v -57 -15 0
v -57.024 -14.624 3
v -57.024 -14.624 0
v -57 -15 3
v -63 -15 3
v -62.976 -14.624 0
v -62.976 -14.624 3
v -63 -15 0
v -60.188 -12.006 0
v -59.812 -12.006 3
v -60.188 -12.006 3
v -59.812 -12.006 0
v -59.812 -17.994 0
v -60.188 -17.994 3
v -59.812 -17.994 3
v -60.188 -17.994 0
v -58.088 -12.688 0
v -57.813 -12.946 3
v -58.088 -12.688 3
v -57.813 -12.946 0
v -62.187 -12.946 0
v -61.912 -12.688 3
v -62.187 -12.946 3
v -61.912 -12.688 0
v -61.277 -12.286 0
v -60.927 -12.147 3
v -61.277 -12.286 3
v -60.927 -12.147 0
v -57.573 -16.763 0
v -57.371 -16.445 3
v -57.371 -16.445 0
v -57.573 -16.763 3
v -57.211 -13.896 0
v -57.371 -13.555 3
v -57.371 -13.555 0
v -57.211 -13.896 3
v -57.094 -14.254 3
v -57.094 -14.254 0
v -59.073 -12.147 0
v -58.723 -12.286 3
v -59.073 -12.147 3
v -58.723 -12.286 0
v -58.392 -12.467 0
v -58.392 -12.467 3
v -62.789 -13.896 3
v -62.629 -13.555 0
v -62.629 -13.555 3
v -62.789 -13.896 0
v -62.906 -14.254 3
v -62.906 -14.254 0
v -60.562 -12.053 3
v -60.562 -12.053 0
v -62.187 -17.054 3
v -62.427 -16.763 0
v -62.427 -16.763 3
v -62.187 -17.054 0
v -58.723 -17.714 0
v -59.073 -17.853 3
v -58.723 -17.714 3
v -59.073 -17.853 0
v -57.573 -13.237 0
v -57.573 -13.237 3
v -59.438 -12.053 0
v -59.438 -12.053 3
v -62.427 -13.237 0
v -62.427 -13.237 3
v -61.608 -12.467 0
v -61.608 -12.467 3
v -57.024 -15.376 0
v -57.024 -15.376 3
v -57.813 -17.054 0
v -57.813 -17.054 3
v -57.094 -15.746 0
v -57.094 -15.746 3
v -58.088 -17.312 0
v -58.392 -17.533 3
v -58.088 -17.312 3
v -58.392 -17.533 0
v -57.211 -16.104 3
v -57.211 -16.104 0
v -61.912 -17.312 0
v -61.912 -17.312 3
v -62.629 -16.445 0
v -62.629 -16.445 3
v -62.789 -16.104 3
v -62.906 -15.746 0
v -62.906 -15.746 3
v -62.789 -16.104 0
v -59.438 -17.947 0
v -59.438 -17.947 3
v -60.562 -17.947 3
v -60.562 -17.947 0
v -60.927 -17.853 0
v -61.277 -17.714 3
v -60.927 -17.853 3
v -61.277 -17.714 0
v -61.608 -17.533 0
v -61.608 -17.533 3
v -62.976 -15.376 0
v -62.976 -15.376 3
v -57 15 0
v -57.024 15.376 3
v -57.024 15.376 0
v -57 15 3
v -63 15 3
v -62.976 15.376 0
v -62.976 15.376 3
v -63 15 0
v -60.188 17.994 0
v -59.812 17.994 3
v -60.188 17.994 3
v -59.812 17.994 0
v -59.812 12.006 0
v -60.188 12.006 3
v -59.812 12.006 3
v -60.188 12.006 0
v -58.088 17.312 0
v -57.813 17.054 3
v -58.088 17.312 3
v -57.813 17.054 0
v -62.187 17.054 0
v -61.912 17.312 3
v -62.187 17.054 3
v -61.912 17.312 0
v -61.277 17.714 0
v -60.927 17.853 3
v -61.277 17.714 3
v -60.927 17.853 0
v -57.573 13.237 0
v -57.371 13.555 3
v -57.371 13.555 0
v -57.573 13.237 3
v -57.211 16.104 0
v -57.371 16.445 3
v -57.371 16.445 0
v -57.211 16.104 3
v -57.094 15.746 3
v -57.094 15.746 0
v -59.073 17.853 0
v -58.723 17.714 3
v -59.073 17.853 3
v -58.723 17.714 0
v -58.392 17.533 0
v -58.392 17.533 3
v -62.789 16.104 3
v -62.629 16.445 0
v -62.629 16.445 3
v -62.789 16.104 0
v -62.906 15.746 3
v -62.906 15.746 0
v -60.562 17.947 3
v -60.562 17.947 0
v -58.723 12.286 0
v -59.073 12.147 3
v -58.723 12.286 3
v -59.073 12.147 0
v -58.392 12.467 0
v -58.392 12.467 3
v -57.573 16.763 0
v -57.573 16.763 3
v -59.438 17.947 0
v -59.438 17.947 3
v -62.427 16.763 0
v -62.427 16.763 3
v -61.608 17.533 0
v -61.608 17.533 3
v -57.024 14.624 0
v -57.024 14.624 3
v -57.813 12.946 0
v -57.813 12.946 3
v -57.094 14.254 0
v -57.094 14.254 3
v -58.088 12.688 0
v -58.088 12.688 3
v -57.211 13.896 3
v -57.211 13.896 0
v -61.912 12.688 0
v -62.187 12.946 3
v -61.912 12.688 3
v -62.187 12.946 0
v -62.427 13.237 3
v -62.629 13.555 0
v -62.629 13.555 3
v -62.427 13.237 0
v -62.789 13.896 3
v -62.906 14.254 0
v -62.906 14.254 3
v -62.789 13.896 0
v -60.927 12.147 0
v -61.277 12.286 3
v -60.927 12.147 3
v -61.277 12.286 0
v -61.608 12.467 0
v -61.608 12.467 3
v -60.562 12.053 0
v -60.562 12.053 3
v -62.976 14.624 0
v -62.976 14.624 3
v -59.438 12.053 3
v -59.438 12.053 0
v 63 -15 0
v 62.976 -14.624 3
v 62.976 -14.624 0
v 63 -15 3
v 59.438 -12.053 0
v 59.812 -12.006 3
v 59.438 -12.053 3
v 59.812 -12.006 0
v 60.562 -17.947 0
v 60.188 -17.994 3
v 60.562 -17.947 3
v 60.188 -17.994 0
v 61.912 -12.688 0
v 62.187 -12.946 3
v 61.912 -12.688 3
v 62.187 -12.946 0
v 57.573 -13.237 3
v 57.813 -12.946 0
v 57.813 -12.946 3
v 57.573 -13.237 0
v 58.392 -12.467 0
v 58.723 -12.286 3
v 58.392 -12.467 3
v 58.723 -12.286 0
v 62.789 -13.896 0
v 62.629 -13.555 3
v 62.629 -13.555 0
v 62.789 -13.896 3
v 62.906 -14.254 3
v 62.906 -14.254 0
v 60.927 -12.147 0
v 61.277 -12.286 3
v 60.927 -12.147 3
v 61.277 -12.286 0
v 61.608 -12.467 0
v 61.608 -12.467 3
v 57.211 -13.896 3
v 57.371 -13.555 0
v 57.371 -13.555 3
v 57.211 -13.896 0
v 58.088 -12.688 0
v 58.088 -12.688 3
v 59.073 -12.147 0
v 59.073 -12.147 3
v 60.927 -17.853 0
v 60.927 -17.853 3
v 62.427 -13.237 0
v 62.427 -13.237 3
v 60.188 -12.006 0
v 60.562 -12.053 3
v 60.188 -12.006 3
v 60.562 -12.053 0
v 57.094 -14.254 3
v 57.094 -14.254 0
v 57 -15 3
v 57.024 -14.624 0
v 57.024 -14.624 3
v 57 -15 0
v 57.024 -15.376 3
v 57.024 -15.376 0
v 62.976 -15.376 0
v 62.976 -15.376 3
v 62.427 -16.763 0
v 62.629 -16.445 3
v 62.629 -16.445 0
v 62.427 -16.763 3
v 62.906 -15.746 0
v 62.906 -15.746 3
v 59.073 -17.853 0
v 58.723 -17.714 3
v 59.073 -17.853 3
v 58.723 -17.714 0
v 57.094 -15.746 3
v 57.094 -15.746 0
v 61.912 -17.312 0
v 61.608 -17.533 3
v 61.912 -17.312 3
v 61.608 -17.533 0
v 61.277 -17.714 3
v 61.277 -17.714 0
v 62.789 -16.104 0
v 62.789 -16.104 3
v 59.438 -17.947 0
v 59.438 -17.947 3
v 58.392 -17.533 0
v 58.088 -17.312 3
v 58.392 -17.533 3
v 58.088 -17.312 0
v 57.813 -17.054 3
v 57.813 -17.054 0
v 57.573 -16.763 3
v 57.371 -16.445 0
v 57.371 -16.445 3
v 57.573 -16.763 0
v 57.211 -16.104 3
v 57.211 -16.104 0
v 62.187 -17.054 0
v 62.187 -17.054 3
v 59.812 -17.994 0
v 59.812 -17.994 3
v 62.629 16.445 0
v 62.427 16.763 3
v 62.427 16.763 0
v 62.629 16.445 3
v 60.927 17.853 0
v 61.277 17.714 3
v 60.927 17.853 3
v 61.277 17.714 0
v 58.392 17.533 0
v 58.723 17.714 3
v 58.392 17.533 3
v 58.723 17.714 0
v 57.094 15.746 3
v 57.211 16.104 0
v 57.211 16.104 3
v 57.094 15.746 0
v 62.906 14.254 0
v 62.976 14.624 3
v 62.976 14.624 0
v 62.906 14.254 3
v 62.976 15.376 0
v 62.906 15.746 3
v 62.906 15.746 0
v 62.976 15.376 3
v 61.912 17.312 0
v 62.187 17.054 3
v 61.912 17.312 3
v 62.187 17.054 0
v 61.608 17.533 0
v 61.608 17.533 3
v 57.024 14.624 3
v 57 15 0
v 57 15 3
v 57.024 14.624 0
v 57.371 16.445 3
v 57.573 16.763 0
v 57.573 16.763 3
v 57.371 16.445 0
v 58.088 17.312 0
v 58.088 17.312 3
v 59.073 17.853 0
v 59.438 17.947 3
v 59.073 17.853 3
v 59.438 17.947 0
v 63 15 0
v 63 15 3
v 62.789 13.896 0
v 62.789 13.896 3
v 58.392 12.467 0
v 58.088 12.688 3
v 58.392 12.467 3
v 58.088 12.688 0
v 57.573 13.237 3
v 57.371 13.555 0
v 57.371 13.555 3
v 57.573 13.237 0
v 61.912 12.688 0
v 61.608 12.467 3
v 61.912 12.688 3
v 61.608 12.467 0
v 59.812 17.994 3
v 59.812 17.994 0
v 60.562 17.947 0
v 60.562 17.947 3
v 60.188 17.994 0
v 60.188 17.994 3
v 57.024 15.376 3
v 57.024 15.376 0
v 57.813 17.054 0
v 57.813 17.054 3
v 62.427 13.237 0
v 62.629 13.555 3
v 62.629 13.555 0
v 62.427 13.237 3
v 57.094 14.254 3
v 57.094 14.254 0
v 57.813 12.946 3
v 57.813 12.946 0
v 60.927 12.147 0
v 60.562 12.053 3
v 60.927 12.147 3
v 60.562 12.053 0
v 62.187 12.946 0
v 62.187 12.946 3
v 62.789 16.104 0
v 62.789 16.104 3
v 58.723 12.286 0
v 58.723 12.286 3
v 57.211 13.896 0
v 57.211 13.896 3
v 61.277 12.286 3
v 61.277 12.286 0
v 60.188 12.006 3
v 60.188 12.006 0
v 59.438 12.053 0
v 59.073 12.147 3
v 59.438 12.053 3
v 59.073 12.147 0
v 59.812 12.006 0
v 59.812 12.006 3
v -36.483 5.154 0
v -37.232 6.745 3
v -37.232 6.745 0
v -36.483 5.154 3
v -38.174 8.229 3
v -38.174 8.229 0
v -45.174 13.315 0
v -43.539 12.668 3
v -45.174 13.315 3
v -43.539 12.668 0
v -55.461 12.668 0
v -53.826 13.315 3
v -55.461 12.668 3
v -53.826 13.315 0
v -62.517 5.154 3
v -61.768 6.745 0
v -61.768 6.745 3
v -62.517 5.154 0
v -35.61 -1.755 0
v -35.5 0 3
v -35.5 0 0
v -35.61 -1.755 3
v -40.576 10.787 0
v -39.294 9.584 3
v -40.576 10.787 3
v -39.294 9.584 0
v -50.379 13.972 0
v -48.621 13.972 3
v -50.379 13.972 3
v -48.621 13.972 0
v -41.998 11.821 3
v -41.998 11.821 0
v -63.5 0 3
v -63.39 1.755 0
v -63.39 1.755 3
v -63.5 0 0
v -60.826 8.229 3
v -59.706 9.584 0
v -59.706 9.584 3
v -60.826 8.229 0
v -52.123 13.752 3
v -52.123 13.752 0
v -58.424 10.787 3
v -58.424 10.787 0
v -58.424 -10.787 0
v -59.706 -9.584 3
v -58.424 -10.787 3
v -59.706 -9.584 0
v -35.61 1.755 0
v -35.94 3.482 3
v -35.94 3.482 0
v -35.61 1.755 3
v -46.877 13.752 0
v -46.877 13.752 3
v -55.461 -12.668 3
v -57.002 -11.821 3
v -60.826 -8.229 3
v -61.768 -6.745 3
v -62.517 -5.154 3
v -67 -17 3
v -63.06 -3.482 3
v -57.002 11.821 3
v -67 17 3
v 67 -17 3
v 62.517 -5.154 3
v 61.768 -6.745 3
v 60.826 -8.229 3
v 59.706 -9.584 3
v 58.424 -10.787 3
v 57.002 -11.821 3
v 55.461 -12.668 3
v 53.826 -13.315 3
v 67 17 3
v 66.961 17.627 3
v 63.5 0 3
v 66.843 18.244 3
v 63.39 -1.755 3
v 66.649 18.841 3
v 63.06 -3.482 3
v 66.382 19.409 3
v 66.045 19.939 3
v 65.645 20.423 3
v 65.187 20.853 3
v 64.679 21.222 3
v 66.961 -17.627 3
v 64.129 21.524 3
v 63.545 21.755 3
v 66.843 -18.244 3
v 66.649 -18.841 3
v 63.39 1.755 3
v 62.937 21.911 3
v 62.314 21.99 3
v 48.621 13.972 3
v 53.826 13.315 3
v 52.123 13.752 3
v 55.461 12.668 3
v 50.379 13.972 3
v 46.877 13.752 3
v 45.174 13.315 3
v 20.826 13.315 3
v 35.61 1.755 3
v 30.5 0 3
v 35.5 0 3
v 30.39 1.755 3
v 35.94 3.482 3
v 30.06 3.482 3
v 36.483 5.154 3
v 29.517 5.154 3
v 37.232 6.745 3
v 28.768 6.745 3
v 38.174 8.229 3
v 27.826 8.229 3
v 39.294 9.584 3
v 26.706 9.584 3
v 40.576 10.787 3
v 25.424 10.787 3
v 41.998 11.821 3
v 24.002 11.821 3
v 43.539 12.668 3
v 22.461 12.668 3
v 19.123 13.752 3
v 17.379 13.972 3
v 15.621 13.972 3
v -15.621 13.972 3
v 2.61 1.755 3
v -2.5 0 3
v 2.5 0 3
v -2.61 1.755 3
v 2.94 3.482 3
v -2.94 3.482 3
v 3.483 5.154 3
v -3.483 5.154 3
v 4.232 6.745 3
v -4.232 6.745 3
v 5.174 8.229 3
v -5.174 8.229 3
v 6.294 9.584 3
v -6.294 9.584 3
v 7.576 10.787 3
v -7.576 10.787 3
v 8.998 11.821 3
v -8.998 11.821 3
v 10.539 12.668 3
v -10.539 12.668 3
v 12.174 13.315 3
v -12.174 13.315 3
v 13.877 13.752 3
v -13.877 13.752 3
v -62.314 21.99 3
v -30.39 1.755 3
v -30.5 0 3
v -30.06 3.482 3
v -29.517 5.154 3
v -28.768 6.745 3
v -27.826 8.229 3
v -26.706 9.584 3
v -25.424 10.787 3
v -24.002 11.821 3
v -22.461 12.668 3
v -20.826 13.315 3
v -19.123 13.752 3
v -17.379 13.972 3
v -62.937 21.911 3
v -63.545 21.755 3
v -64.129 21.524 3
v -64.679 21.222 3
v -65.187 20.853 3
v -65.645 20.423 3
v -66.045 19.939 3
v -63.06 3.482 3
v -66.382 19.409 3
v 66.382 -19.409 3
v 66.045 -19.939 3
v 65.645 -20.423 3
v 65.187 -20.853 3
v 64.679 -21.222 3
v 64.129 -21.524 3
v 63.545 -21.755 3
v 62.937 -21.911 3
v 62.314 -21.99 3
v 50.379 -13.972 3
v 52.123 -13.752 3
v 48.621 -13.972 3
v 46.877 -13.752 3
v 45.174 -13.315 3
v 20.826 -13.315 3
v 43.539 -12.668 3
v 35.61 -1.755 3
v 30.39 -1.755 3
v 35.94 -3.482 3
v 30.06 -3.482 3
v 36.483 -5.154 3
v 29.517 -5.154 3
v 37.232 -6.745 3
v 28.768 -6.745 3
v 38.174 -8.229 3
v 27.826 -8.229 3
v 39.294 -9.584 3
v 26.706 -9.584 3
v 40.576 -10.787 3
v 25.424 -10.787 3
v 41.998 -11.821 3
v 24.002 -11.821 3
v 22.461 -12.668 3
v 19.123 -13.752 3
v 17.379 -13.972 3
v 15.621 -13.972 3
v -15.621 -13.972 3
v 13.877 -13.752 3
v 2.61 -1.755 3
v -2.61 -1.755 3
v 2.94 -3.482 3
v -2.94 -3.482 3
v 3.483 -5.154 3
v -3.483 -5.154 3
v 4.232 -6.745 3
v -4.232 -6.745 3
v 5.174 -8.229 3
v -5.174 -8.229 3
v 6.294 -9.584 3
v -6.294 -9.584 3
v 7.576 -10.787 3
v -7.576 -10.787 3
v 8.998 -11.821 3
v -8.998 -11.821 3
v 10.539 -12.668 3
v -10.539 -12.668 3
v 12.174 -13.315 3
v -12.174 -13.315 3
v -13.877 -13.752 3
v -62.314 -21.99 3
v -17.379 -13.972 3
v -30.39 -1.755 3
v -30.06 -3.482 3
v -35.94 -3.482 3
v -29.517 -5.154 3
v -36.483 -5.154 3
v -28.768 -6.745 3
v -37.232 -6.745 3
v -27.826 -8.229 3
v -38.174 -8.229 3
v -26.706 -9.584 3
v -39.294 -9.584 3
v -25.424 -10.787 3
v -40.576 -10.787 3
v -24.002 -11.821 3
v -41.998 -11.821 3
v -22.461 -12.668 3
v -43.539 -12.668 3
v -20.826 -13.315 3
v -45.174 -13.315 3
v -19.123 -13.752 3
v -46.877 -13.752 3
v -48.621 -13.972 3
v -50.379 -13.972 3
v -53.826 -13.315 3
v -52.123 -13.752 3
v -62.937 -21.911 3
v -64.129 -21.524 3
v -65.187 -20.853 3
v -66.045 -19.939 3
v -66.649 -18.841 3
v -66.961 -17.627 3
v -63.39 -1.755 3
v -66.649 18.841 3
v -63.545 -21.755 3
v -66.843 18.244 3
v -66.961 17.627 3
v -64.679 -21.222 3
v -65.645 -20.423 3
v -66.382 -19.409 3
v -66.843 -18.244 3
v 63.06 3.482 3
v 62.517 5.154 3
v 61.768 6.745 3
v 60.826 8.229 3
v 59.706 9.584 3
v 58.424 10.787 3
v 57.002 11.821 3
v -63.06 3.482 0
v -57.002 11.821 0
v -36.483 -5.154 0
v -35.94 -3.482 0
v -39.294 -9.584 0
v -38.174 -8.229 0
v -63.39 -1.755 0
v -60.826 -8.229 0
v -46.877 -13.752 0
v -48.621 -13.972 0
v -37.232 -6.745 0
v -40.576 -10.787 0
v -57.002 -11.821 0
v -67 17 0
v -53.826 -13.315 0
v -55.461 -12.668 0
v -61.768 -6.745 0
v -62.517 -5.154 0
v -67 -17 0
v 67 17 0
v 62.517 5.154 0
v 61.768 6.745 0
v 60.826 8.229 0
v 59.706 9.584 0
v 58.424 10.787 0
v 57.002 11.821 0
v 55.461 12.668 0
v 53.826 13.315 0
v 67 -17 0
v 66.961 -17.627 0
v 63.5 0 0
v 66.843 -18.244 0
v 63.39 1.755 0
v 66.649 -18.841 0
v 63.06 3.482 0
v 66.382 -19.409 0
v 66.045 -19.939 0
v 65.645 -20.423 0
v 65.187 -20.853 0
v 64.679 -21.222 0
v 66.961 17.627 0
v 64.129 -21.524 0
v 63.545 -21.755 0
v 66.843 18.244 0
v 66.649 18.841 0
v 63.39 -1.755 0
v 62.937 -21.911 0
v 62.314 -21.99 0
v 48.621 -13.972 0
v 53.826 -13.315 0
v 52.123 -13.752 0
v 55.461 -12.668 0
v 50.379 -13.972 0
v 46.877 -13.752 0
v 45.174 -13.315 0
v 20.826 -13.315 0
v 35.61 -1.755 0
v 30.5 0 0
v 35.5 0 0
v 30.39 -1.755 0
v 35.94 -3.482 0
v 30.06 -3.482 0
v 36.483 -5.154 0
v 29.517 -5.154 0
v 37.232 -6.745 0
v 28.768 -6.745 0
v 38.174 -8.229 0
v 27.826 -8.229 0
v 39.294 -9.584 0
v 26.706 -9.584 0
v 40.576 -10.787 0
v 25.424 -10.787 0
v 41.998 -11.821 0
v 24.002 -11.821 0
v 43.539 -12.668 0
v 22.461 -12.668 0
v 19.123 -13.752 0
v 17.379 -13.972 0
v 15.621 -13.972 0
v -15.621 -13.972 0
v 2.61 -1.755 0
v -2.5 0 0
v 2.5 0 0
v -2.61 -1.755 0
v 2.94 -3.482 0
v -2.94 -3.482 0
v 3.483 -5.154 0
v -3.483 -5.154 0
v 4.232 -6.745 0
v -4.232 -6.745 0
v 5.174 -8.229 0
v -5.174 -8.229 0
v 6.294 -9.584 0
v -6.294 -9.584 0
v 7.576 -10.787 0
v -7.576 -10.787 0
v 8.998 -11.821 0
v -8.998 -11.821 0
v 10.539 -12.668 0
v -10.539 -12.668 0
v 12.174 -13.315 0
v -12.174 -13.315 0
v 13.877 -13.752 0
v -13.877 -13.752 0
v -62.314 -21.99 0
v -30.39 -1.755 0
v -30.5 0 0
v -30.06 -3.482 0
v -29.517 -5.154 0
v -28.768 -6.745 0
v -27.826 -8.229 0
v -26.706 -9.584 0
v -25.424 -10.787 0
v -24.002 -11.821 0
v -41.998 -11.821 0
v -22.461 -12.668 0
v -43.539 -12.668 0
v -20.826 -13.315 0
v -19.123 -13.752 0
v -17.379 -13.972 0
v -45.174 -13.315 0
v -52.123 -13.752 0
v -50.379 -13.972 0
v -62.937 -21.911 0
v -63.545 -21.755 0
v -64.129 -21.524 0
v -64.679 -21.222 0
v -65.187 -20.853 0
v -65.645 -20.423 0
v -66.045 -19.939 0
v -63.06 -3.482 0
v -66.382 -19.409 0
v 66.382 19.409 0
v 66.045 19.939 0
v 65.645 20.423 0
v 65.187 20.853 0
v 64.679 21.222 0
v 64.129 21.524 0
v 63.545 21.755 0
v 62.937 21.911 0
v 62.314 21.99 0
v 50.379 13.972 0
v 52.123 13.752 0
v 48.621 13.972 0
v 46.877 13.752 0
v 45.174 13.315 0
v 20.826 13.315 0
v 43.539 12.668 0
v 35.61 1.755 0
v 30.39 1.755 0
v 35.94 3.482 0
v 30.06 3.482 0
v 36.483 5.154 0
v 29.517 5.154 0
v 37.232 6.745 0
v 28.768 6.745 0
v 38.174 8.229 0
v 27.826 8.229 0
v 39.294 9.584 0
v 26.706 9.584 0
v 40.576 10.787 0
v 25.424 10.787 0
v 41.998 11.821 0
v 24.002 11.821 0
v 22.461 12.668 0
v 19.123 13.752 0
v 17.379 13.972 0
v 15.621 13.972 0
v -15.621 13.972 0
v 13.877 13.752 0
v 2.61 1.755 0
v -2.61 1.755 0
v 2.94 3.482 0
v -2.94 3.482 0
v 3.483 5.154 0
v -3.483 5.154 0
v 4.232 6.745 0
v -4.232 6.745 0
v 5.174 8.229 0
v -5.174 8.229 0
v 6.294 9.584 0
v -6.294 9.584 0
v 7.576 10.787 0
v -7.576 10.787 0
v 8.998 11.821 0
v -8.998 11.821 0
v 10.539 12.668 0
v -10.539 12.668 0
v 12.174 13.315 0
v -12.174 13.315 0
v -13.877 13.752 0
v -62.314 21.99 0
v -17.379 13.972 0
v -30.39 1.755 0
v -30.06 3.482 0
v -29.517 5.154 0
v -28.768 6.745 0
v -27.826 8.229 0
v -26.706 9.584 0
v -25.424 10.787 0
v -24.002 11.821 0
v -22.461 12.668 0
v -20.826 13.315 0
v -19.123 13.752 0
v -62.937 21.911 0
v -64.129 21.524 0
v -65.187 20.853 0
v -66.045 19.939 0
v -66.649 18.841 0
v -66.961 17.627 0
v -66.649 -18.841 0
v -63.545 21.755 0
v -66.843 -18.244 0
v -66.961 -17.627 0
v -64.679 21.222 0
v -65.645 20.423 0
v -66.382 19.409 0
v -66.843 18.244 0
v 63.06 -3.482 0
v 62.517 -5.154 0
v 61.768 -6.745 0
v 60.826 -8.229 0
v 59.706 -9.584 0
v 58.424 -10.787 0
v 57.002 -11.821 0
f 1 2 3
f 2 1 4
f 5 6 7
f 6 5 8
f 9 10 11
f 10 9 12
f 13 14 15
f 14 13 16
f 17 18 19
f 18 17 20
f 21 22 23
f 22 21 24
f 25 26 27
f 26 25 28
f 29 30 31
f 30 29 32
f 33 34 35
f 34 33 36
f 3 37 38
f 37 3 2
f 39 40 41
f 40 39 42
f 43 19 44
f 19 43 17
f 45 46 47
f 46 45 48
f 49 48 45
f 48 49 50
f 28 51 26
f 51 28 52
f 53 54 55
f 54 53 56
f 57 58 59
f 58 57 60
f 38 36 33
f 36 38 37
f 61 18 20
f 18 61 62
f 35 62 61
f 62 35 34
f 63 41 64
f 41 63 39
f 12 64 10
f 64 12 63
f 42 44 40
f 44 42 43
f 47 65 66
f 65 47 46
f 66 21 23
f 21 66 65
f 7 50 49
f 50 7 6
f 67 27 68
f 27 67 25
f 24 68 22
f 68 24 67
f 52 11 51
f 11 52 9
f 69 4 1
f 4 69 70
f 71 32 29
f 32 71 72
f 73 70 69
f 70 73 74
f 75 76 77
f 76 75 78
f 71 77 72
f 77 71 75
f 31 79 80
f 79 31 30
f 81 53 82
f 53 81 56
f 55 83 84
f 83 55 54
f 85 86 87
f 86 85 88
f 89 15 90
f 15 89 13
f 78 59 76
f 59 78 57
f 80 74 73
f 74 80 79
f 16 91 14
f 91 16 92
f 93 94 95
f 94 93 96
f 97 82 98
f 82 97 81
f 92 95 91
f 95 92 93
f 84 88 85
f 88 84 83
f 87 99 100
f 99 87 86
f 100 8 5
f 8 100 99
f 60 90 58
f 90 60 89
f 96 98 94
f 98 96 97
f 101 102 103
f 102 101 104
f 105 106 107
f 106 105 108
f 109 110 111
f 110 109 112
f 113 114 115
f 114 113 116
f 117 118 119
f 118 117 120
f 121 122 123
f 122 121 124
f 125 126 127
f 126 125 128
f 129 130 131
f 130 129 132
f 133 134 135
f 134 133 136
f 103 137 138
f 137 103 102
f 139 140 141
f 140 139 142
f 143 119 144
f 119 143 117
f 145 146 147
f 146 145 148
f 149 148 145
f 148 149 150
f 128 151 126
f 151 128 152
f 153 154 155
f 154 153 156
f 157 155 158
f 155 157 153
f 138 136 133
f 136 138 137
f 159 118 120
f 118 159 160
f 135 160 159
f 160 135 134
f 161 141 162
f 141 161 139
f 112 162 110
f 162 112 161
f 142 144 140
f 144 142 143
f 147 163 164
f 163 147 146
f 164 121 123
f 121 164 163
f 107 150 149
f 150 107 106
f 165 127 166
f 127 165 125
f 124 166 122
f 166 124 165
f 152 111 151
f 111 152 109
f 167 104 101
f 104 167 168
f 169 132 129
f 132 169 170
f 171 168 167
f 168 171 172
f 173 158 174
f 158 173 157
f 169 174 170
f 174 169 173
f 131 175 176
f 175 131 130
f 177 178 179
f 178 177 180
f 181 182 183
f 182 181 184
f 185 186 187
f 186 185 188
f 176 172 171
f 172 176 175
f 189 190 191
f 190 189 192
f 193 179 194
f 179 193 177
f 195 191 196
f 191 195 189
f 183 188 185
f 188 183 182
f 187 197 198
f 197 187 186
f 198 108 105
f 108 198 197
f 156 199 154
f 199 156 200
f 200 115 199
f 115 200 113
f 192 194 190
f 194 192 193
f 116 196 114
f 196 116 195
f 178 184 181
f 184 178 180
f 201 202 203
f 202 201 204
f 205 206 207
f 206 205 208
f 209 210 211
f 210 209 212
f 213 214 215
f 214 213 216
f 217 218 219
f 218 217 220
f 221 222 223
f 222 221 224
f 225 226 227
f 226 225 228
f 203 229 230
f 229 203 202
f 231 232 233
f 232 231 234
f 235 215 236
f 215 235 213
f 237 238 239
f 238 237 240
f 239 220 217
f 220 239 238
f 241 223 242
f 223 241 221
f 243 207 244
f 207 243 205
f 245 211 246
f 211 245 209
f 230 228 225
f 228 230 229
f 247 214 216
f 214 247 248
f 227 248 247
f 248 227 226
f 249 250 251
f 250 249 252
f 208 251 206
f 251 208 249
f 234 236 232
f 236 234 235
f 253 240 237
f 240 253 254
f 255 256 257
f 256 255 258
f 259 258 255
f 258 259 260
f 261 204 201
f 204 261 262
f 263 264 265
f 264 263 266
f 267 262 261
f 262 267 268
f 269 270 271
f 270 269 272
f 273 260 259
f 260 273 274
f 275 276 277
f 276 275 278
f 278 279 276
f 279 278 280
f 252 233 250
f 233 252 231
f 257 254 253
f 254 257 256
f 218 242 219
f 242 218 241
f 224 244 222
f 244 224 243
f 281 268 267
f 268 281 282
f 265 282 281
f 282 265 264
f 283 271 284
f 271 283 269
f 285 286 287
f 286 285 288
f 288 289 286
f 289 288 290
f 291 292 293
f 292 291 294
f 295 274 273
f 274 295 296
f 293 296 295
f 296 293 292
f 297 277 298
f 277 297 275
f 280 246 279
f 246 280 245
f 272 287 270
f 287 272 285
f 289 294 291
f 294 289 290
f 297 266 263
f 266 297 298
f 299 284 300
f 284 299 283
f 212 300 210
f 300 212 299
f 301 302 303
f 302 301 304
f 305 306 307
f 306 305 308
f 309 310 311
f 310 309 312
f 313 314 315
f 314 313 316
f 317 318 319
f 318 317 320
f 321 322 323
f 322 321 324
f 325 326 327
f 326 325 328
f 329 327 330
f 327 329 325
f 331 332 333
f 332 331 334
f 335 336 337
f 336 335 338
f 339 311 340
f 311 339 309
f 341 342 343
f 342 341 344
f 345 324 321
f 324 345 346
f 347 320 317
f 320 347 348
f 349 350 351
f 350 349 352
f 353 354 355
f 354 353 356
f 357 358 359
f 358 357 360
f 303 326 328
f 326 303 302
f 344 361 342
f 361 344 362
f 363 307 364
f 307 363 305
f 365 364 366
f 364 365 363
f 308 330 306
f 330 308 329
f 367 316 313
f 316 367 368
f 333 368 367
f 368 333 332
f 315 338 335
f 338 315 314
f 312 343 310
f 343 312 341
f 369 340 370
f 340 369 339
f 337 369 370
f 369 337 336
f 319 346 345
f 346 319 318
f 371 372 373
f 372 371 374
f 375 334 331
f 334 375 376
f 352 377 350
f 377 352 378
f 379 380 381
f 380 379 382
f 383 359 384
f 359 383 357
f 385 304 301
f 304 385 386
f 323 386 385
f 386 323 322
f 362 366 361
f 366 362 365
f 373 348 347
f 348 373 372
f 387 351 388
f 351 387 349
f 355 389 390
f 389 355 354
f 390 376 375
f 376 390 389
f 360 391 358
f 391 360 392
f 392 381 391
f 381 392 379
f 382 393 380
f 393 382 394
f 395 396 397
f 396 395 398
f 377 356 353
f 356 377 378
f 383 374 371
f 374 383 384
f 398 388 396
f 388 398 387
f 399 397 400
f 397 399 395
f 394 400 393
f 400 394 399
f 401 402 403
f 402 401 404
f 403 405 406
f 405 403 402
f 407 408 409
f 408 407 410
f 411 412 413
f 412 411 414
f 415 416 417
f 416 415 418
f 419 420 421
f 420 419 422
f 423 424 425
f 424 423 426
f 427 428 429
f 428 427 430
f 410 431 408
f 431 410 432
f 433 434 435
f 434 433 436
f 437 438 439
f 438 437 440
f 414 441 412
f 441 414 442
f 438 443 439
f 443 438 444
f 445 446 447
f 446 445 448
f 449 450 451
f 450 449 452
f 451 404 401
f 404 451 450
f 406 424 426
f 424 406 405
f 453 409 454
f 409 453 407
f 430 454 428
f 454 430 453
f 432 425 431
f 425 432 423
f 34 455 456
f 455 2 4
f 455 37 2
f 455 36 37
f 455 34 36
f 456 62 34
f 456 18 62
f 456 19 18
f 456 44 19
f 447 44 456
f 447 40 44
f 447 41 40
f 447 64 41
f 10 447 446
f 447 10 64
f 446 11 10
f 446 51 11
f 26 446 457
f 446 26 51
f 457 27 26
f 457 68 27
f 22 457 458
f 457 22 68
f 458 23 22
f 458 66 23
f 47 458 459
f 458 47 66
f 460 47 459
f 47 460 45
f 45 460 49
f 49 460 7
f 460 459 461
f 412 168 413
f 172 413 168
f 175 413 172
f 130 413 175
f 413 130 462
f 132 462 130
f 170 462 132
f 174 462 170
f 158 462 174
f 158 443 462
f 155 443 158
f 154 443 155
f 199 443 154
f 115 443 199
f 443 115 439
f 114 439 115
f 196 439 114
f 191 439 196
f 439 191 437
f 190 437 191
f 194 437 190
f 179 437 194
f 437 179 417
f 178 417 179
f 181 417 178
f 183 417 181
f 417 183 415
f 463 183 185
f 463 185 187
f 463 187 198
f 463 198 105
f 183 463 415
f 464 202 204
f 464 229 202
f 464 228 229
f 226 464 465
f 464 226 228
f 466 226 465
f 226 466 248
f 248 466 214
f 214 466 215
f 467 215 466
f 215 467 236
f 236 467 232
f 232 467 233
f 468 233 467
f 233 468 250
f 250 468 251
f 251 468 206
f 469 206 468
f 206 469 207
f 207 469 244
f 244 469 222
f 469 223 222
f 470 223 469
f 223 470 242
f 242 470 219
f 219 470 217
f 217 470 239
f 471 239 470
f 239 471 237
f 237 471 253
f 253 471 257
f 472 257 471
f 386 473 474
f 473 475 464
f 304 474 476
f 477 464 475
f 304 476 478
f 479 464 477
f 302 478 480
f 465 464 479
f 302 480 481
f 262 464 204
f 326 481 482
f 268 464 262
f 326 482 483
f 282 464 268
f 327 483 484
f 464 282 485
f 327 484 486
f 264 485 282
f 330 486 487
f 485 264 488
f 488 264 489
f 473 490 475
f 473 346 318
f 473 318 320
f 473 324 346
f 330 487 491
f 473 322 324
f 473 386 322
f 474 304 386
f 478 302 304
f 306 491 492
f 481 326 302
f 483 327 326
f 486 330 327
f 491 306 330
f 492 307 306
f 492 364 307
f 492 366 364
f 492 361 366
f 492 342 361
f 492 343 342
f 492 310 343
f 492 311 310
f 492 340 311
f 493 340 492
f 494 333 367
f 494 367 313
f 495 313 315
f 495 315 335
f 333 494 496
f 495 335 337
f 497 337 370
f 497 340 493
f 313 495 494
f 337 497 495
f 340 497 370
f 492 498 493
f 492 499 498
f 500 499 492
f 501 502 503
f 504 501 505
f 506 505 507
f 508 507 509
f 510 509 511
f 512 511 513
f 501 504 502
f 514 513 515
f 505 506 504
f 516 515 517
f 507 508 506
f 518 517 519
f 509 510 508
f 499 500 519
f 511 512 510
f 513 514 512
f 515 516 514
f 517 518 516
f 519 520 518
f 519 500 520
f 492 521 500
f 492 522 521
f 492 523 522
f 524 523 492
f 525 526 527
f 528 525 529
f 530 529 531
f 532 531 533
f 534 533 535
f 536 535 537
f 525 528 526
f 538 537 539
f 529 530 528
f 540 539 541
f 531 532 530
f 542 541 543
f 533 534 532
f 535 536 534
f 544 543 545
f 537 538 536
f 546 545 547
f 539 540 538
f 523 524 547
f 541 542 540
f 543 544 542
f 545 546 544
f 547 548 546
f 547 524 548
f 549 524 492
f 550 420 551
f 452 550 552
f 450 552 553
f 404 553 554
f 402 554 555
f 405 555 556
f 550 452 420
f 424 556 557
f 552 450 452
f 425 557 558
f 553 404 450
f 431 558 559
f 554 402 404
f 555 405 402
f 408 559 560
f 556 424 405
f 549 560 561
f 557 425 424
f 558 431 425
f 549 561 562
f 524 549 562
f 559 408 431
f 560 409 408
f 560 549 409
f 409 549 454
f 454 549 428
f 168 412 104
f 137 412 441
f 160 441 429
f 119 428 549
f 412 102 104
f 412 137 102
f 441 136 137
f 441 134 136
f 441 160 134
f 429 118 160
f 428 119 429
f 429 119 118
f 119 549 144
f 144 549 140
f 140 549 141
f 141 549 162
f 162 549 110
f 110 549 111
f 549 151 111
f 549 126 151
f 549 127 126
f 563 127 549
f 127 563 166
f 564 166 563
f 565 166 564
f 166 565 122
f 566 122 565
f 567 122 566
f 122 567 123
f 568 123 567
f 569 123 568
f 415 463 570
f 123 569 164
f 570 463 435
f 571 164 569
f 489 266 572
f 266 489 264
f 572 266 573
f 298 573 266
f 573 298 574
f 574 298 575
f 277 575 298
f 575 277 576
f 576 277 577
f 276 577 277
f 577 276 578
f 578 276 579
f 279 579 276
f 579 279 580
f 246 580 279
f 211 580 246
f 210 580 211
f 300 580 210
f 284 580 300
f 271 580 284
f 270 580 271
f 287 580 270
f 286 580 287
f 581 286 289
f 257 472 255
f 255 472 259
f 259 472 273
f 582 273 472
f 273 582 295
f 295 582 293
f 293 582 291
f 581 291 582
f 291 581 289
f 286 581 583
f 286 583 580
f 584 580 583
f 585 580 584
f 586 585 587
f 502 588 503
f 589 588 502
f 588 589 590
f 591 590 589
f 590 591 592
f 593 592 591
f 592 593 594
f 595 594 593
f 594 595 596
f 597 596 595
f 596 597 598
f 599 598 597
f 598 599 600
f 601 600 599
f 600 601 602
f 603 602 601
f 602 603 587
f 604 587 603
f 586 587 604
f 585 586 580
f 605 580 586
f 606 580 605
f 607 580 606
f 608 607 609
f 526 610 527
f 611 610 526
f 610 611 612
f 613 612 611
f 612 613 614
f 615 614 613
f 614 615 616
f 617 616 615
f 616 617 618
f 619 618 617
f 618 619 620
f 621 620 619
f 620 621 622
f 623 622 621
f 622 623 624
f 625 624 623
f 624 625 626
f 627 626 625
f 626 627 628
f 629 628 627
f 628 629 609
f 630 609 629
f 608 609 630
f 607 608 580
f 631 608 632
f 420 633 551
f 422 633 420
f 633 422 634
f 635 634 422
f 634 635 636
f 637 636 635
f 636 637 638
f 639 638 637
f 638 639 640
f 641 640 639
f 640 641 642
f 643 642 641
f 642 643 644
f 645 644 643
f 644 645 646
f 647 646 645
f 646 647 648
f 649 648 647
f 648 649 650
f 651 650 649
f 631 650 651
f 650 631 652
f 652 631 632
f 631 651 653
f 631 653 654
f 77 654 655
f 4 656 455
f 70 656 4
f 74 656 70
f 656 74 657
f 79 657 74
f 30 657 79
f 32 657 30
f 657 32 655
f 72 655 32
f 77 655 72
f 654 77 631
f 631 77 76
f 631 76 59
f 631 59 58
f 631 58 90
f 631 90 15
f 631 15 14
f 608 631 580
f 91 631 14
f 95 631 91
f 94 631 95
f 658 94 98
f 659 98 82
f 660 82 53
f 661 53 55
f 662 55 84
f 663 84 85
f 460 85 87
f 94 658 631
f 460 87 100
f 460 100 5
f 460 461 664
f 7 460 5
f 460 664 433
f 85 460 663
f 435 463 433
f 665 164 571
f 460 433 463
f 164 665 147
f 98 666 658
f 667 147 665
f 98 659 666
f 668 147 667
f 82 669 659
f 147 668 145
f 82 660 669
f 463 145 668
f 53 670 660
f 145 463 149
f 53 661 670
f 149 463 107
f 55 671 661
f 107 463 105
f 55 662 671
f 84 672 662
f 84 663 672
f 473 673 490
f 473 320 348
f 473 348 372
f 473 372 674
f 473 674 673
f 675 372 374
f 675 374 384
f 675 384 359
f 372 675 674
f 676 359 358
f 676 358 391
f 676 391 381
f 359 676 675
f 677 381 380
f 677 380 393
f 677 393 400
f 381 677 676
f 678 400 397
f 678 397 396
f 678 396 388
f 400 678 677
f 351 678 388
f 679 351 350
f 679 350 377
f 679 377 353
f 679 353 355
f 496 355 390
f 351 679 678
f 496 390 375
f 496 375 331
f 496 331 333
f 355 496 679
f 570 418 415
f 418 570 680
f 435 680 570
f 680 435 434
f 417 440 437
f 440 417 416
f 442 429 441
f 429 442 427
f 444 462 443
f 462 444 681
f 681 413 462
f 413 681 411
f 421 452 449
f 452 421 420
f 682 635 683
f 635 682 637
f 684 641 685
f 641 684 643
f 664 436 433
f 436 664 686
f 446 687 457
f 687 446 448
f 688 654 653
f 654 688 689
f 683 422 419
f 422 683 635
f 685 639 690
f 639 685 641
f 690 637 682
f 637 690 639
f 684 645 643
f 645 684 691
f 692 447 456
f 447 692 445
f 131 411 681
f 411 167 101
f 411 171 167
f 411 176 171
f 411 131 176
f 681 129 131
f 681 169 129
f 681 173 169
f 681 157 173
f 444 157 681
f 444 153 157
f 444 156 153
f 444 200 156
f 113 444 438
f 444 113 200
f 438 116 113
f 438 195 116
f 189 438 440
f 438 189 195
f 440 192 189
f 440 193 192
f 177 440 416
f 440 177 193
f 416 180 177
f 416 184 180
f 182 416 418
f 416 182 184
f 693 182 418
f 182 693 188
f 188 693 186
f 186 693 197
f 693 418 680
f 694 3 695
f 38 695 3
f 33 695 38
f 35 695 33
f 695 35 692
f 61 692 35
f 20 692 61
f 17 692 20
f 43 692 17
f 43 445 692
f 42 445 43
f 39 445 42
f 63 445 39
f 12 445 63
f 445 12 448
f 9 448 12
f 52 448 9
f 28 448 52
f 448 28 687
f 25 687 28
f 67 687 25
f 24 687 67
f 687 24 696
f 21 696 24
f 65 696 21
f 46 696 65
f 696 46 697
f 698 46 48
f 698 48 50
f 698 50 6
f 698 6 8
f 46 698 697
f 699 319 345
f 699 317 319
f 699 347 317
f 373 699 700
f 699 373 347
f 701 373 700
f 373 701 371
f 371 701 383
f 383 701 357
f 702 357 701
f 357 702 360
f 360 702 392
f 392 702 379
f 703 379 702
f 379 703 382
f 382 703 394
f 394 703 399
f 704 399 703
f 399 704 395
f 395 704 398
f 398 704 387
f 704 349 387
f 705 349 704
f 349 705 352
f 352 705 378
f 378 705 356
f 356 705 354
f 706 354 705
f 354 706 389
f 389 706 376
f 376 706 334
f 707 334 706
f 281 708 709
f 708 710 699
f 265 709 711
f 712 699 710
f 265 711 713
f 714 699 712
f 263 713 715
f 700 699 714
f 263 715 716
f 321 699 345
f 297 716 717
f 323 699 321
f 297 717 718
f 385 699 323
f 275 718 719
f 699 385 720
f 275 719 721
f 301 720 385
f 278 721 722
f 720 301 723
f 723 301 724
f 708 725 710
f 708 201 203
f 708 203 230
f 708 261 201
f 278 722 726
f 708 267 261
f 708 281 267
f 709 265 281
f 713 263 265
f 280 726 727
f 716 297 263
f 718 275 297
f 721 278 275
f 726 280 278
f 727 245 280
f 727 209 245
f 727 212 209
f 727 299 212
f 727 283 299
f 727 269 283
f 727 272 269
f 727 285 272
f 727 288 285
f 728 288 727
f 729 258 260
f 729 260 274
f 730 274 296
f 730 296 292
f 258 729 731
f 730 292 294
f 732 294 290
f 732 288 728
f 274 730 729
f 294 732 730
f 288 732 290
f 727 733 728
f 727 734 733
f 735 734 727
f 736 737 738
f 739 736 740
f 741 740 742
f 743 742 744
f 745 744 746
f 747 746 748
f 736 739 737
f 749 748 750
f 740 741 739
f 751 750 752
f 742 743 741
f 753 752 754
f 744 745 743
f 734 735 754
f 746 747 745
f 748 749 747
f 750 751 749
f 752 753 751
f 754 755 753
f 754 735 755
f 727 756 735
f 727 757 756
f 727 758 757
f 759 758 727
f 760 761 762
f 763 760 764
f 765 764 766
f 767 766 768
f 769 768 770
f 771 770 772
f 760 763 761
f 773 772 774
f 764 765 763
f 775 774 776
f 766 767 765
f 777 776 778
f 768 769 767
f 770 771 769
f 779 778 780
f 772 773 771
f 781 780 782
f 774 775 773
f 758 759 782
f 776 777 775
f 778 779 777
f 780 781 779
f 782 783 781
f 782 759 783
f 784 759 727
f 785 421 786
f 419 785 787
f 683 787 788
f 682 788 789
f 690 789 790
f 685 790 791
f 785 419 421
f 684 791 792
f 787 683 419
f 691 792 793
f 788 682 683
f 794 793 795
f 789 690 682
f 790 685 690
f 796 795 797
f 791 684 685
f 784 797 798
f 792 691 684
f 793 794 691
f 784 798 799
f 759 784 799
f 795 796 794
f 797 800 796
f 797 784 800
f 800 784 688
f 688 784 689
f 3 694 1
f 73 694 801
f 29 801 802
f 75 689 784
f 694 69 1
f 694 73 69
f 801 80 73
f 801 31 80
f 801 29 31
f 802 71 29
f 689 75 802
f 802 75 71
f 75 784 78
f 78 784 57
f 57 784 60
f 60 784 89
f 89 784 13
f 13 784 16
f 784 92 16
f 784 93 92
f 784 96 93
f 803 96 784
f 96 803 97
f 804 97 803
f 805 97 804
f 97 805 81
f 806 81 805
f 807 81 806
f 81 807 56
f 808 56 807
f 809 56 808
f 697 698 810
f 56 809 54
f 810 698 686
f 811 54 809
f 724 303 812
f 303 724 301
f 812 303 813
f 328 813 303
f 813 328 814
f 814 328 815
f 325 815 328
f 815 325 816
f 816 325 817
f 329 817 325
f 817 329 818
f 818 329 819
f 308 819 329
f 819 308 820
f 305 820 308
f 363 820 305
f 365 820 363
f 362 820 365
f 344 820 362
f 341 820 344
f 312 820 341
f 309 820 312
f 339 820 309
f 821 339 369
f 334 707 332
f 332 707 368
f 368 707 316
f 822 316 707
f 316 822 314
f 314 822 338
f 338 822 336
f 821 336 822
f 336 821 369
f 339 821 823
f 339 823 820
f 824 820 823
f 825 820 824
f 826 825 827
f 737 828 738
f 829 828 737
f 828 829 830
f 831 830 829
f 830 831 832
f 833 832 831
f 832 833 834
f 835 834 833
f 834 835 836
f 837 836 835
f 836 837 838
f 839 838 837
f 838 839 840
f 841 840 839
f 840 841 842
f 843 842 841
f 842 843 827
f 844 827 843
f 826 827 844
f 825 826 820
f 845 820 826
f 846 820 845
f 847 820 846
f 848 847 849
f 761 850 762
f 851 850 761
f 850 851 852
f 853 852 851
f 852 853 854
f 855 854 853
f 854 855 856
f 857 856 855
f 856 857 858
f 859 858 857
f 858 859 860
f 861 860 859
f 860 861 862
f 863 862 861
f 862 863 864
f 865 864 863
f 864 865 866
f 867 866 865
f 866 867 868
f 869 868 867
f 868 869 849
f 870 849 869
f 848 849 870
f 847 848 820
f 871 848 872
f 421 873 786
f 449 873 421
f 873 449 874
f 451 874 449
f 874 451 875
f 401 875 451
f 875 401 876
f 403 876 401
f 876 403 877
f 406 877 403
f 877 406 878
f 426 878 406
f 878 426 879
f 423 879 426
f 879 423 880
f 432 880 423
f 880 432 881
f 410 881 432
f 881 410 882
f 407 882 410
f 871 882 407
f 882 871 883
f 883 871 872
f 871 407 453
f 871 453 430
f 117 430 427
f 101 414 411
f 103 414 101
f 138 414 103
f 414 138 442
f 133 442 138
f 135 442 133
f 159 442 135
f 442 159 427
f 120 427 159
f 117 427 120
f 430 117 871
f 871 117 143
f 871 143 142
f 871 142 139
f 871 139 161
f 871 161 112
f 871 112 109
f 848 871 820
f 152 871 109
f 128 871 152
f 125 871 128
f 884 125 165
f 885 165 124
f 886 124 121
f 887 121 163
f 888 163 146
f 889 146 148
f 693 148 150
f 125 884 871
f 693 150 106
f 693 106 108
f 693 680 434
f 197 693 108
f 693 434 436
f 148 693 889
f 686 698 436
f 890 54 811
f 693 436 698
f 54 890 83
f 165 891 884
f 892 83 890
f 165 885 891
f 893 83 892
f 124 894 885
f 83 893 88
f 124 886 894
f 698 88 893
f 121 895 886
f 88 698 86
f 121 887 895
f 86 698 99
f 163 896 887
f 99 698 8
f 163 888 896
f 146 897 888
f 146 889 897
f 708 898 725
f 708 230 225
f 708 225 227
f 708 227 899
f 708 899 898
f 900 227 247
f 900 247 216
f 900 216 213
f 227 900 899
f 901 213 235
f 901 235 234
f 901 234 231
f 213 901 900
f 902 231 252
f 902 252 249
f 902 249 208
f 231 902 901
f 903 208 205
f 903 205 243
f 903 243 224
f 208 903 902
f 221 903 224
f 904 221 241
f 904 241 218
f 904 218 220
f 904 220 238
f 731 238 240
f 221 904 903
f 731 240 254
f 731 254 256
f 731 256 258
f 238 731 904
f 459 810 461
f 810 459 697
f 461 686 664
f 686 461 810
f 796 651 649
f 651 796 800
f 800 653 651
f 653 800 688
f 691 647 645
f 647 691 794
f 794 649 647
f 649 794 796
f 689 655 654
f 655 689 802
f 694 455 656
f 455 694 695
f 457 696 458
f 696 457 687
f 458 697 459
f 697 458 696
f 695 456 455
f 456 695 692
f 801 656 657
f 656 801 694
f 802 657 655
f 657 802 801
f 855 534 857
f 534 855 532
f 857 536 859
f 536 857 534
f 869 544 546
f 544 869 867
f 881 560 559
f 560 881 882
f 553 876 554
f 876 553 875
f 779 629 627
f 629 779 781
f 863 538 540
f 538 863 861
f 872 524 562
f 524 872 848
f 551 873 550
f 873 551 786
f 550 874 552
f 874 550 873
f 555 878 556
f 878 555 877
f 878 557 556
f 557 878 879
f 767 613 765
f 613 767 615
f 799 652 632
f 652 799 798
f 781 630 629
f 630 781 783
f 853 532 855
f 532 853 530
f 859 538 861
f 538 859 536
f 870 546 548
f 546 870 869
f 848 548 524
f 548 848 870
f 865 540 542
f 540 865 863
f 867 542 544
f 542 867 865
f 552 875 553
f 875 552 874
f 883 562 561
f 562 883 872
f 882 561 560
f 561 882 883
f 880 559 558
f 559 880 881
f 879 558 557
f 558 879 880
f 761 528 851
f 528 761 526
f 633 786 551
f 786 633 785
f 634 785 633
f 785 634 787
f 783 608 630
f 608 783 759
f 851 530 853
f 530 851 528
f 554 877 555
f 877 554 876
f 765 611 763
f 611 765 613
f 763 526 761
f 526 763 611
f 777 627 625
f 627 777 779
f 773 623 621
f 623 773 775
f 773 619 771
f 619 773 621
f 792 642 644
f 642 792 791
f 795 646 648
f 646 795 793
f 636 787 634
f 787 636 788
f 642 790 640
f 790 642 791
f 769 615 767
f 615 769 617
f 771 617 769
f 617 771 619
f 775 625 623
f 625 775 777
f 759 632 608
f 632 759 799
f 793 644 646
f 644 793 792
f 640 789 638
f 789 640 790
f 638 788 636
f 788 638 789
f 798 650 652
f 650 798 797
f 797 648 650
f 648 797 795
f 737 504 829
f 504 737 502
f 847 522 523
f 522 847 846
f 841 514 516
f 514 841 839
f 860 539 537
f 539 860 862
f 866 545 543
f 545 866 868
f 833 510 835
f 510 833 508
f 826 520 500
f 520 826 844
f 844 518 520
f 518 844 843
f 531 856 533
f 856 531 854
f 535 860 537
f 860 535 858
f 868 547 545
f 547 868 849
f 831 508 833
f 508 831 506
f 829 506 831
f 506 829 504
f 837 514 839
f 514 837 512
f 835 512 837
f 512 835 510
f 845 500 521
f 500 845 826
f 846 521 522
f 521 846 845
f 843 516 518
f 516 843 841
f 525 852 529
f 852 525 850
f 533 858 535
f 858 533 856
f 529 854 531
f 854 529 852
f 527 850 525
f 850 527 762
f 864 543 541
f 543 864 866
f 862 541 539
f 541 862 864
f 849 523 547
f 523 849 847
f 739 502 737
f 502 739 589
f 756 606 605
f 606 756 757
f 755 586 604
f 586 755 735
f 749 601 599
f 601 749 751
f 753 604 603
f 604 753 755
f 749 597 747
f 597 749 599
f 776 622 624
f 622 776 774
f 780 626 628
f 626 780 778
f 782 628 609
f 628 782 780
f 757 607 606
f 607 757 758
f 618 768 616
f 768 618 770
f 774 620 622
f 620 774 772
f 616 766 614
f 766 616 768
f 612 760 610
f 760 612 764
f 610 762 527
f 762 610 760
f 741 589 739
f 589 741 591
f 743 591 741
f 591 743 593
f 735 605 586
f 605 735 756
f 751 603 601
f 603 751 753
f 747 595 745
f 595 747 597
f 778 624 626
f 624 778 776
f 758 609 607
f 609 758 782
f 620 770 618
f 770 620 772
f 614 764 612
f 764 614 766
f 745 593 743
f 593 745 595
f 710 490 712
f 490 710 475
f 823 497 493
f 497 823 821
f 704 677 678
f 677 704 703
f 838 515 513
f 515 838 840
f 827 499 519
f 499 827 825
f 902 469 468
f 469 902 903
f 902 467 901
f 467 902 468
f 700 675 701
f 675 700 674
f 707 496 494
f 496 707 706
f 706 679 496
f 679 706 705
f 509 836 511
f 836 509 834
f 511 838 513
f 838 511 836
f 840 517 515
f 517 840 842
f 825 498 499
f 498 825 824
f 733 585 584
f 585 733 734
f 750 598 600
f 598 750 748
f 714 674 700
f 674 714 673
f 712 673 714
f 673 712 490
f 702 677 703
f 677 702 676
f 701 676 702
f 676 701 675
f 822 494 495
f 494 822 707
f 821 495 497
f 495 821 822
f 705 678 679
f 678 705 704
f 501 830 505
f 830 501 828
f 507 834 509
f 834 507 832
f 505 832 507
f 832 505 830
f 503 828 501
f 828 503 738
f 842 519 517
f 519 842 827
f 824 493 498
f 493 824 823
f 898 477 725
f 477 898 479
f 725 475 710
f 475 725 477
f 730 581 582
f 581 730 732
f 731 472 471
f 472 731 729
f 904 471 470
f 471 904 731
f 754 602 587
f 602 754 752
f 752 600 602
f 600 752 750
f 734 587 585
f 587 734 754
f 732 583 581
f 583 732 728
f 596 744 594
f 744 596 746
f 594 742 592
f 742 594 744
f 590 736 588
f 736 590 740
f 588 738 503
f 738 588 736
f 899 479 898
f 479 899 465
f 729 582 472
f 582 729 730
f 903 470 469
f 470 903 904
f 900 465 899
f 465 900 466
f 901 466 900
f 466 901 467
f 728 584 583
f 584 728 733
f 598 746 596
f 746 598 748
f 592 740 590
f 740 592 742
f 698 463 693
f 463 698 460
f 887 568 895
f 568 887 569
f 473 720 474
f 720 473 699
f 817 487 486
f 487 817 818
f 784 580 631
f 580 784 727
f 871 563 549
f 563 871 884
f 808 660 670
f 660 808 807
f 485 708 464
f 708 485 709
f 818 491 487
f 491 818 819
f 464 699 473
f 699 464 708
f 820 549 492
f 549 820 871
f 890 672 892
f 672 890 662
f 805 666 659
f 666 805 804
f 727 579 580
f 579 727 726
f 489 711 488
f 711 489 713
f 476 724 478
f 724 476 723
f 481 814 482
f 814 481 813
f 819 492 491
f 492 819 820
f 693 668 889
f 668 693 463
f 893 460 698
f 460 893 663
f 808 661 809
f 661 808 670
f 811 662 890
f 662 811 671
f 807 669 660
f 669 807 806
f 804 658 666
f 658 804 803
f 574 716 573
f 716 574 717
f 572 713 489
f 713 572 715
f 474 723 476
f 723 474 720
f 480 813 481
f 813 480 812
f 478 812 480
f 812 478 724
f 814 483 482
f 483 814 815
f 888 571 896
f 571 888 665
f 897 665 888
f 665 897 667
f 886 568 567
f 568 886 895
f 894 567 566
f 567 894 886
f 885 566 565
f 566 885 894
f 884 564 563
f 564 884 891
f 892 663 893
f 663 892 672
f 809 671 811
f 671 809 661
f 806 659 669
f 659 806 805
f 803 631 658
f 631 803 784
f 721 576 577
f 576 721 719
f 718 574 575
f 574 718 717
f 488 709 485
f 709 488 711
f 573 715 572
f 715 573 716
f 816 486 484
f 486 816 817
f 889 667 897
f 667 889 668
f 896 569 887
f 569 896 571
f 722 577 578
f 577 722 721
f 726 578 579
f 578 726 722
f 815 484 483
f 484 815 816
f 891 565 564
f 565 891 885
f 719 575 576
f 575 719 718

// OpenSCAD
$fn = 50;


difference() {
	union() {
		hull() {
			translate(v = [-62.0000000000, 17.0000000000, 0]) {
				cylinder(h = 3, r = 5);
			}
			translate(v = [62.0000000000, 17.0000000000, 0]) {
				cylinder(h = 3, r = 5);
			}
			translate(v = [-62.0000000000, -17.0000000000, 0]) {
				cylinder(h = 3, r = 5);
			}
			translate(v = [62.0000000000, -17.0000000000, 0]) {
				cylinder(h = 3, r = 5);
			}
		}
	}
	union() {
		#translate(v = [-60.0000000000, -15.0000000000, -100.0000000000]) {
			cylinder(h = 200, r = 3.0000000000);
		}
		#translate(v = [-60.0000000000, 15.0000000000, -100.0000000000]) {
			cylinder(h = 200, r = 3.0000000000);
		}
		#translate(v = [60.0000000000, -15.0000000000, -100.0000000000]) {
			cylinder(h = 200, r = 3.0000000000);
		}
		#translate(v = [60.0000000000, 15.0000000000, -100.0000000000]) {
			cylinder(h = 200, r = 3.0000000000);
		}
		#translate(v = [-49.5000000000, 0, 0]) {
			cylinder(h = 3, r = 14.0000000000);
		}
		#translate(v = [-16.5000000000, 0, 0]) {
			cylinder(h = 3, r = 14.0000000000);
		}
		#translate(v = [16.5000000000, 0, 0]) {
			cylinder(h = 3, r = 14.0000000000);
		}
		#translate(v = [49.5000000000, 0, 0]) {
			cylinder(h = 3, r = 14.0000000000);
		}
	}
}
